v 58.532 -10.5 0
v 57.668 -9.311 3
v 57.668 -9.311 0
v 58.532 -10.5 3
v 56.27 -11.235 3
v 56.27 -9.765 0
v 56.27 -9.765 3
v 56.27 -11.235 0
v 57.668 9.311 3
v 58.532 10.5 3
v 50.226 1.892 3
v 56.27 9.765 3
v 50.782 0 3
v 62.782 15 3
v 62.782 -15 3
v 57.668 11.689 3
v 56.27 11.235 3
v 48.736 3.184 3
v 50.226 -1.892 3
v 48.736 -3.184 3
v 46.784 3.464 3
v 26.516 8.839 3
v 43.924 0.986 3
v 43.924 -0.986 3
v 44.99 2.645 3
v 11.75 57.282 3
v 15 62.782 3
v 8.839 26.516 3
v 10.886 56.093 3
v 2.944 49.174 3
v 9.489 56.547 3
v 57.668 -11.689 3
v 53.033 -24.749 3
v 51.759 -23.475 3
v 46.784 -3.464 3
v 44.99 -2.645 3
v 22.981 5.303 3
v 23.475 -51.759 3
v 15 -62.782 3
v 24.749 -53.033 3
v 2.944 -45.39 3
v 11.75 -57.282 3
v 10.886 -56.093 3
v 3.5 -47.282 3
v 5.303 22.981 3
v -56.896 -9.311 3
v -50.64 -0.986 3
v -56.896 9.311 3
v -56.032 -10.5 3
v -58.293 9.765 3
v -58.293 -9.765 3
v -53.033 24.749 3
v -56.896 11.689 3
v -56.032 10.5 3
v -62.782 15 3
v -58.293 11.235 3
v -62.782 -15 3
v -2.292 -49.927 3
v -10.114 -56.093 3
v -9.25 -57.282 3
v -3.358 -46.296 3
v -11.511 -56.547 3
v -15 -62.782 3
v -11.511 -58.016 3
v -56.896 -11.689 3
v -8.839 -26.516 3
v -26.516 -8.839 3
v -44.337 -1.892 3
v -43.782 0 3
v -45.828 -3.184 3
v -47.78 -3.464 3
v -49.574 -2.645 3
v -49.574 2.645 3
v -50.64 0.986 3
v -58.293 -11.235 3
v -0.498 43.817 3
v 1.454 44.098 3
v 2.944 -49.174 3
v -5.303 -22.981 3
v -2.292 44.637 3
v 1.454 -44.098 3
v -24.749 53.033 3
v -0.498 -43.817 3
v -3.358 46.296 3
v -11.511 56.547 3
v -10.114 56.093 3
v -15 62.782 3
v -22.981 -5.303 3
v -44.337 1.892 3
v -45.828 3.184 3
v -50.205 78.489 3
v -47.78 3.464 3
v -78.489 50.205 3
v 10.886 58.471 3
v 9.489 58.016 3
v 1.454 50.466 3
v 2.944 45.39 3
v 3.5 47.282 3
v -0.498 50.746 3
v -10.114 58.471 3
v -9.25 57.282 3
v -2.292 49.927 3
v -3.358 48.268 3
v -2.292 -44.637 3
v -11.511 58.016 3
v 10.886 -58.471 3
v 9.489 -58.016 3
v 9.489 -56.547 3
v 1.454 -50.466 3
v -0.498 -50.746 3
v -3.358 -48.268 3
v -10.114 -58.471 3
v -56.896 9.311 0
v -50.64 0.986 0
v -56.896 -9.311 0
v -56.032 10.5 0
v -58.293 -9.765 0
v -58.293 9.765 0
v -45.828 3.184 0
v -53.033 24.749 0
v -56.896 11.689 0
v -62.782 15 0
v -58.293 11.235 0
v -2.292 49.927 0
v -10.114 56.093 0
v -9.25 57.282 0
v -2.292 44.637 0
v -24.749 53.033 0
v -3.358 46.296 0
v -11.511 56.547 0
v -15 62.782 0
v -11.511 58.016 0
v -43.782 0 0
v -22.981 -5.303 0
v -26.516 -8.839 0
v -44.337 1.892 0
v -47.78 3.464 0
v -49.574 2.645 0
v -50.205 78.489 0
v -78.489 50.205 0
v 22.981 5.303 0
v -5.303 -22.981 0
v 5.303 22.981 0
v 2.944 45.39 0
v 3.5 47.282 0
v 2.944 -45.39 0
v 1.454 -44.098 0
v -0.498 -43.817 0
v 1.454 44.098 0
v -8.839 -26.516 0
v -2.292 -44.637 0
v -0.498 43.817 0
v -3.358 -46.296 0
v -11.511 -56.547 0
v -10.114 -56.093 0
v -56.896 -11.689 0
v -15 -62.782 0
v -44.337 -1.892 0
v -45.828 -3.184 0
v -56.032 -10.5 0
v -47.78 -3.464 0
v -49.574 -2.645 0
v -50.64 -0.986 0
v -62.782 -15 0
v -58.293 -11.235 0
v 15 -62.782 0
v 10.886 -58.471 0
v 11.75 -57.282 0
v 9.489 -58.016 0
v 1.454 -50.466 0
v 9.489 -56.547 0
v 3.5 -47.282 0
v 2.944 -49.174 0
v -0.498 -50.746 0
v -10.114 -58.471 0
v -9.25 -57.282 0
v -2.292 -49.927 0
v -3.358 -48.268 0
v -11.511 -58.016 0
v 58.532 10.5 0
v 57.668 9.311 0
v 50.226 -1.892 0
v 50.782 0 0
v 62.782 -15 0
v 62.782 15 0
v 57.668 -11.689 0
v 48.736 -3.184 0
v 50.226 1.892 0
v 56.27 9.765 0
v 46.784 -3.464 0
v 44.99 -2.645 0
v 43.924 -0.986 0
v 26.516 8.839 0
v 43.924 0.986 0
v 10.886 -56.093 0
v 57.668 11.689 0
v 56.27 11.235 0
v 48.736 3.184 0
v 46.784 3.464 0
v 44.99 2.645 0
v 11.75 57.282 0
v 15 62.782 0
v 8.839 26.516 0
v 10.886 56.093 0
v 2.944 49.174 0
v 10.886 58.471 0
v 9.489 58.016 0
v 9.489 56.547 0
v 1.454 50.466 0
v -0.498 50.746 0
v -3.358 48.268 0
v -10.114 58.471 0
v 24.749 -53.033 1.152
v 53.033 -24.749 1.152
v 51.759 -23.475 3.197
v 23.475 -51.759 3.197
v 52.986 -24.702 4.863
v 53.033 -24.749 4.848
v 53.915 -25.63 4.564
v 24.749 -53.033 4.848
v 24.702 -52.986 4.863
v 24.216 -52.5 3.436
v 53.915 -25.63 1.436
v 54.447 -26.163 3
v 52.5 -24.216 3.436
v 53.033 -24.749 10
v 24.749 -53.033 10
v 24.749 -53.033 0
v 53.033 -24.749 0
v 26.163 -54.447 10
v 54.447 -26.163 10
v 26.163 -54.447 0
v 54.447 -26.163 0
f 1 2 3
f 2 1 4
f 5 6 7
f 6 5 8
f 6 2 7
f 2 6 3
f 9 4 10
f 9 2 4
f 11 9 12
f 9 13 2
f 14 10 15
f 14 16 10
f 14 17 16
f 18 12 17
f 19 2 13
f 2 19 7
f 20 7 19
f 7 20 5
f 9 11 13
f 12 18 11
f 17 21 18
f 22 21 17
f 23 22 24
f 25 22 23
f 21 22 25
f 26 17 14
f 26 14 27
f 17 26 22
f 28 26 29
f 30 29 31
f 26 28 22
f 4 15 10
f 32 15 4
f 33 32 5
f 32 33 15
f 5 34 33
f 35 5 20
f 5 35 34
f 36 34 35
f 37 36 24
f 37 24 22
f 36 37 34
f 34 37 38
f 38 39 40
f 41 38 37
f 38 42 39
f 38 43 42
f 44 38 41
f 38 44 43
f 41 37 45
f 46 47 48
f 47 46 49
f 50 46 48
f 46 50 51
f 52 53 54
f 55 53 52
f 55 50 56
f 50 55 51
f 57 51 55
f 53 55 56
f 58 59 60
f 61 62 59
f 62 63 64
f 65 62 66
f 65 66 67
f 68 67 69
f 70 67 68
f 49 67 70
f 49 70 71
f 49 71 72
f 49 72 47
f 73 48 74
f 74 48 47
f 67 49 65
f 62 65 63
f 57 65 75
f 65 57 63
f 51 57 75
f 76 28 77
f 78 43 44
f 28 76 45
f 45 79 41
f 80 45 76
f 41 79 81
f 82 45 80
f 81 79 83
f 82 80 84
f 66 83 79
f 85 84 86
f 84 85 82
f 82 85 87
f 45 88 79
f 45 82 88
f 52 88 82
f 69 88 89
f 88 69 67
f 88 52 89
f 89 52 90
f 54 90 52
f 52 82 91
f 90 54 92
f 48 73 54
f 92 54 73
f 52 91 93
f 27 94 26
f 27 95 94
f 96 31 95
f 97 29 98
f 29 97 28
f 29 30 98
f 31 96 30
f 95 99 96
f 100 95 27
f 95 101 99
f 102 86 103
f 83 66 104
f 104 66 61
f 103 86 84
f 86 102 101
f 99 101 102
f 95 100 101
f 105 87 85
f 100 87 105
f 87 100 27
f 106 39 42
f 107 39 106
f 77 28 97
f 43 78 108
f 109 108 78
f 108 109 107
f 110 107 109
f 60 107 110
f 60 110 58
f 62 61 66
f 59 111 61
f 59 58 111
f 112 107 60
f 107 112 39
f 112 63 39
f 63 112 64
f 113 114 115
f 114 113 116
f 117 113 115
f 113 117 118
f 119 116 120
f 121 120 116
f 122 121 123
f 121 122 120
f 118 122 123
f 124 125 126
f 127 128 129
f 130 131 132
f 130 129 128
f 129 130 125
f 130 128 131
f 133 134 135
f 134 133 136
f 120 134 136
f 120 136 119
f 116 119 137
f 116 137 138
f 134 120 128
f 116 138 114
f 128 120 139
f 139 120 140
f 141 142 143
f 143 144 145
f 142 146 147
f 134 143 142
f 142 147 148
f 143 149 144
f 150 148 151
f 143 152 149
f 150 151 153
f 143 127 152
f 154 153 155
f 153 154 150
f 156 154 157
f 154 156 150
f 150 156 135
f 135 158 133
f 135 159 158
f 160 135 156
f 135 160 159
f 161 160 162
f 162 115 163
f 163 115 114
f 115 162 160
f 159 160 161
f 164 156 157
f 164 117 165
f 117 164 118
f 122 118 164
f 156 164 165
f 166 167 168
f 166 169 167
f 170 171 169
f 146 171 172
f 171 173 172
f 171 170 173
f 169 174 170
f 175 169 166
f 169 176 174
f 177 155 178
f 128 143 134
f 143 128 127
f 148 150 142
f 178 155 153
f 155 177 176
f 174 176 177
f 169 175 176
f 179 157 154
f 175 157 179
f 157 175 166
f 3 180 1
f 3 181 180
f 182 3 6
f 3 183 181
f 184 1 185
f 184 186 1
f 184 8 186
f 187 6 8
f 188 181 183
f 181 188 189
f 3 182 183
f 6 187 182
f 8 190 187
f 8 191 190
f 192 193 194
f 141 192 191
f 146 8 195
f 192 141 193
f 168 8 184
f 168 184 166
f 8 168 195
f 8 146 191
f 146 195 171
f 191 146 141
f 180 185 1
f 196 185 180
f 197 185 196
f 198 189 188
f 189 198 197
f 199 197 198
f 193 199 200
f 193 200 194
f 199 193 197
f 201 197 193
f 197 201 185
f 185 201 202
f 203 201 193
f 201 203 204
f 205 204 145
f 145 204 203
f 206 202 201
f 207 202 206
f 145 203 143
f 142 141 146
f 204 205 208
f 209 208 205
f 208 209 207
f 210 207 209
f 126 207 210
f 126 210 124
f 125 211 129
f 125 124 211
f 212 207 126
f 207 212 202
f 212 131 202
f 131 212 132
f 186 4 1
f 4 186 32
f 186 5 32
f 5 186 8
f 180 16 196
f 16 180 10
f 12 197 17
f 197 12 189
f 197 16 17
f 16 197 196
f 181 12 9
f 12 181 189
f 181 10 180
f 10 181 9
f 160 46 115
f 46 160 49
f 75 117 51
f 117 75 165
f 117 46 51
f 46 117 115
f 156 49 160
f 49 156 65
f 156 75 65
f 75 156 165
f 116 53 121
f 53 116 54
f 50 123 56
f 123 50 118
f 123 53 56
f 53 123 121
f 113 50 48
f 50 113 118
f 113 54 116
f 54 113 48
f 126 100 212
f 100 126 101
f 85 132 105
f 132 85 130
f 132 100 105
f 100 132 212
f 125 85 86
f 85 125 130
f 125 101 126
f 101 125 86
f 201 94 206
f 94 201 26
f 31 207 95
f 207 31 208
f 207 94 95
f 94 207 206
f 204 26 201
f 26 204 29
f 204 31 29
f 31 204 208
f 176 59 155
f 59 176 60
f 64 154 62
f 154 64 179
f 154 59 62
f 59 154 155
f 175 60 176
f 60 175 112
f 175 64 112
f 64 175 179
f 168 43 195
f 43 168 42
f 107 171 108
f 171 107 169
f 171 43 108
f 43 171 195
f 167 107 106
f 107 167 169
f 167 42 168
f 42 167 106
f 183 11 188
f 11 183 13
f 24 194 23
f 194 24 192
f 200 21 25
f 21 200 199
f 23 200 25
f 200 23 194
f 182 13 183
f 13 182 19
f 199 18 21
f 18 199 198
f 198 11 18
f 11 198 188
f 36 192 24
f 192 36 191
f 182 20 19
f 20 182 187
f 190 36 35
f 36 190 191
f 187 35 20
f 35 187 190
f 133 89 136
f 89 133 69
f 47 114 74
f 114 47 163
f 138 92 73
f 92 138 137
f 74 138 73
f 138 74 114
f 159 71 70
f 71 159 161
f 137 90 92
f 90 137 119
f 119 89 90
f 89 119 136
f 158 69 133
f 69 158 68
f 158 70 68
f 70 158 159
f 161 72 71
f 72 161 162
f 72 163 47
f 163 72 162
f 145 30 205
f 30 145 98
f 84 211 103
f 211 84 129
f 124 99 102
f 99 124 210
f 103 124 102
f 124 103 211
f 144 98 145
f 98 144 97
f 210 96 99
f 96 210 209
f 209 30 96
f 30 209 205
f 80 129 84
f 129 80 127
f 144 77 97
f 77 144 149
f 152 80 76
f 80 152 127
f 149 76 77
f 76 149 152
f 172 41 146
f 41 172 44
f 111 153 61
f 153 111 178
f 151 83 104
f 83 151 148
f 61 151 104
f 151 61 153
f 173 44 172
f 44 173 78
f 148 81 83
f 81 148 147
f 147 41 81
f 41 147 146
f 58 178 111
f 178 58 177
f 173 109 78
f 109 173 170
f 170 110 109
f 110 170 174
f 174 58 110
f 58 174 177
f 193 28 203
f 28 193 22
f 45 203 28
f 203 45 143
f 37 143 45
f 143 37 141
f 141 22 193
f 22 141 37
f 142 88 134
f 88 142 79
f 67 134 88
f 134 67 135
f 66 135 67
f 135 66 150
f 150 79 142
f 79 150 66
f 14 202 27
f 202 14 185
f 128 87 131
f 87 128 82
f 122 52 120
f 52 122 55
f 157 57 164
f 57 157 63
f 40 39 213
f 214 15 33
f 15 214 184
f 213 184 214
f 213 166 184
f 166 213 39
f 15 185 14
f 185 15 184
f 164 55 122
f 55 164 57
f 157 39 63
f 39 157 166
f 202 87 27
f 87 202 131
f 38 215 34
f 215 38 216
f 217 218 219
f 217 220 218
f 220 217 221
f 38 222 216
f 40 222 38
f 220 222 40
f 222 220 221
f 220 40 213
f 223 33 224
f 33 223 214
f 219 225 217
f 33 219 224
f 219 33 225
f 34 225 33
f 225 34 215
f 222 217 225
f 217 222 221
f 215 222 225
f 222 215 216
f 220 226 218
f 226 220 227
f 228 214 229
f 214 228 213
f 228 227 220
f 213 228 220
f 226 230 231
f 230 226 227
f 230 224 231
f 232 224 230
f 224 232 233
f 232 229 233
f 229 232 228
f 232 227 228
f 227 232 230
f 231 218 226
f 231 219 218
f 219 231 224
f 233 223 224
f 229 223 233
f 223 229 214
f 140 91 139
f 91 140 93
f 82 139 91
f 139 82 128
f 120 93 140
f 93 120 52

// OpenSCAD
// $fn = 64;

// plate parameters
plate_width = 110.0;
plate_depth = 3.0;

module M25ScrewHole(x, y, z, depth) {
    translate([x, y, z]) {
        cylinder(h = depth, d = 2.5, center = true);
    }
}

module M6Hole(x, y, z, depth) {
    translate([x, y, z]) {
        cylinder(h = depth, d = 7.0, center = true);
    }
}

module BottomPlateScrewHoles(plate_width, plate_depth, plate_diagonal) {
    base_line = 21.0;
    between_line = 20.0;

    E = 5.5;
    F = (plate_diagonal / 2.0) - E;
    G = F - between_line;

    // outer screw holes
    M25ScrewHole(F, -base_line / 2.0, plate_depth / 2.0, plate_depth);
    M25ScrewHole(F, base_line / 2.0, plate_depth / 2.0, plate_depth);

    M25ScrewHole(-F, -base_line / 2.0, plate_depth / 2.0, plate_depth);
    M25ScrewHole(-F, base_line / 2.0, plate_depth / 2.0, plate_depth);

    M25ScrewHole(-base_line / 2.0, F, plate_depth / 2.0, plate_depth);
    M25ScrewHole(base_line / 2.0, F, plate_depth / 2.0, plate_depth);

    M25ScrewHole(-base_line / 2.0, -F, plate_depth / 2.0, plate_depth);
    M25ScrewHole(base_line / 2.0, -F, plate_depth / 2.0, plate_depth);
}

module StackHoles(plate_width, plate_depth, plate_diagonal) {
    between_line = 20.0;

    E = 5.5;
    F = (plate_diagonal / 2.0) - E;
    H = F - (between_line / 2.0);

    M6Hole(H, 0.0, plate_depth / 2.0, plate_depth);
    M6Hole(-H, 0.0, plate_depth / 2.0, plate_depth);
    M6Hole(0.0, H, plate_depth / 2.0, plate_depth);
    M6Hole(0.0, -H, plate_depth / 2.0, plate_depth);
}

module BatteryStrapHoles(plate_width, plate_depth, plate_diagonal) {
    hole_width = 5;
    hole_length = 25;
    hole_between_width = 45;

    rotate(45) {
        translate([hole_between_width / 2.0, 0.0, plate_depth / 2.0]) {
            cube([hole_width, hole_length, plate_depth], center = true);
        }
    }

    rotate(45) {
        translate([-hole_between_width / 2.0, 0.0, plate_depth / 2.0]) {
            cube([hole_width, hole_length, plate_depth], center = true);
        }
    }
}

module BatteryTray(plate_width, plate_depth, battery_width, battery_length) {
    stay_length = battery_length - plate_width;

    translate([(plate_width / 2.0), 0.0, 0.0]) {
        cube([stay_length, battery_width, plate_depth]);
    }
}

module BatteryStop(plate_width, plate_depth, battery_width, battery_length) {
    stay_length = battery_length - plate_width;
	fillet_radius = 2.0;
	stop_thickness = 2;
	stop_height = 10;

    translate([(plate_width / 2.0), 0.0, 0.0]) {
		// fillet
        rotate([90, 0, 0]) {
			translate([0.0, plate_depth, -battery_width / 2.0]) {
				difference() {
					cylinder(r=fillet_radius, h=battery_width, center=true);
					translate([-fillet_radius, fillet_radius, 0.0]) {
						cylinder(r=fillet_radius, h=battery_width, center=true);
					}
				}
			}
		}

		// stop
		cube([stop_thickness, battery_width, stop_height]);
    }
}

module BottomPlate(plate_width, plate_depth) {
    battery_length = 146;
    battery_width = 40;

    difference() {
        // plate
        rotate(45) {
            translate([-plate_width / 2.0, -plate_width / 2.0, 0.0]) {
                cube([plate_width, plate_width, plate_depth]);
            }
        }

        // square cut plate corners
        A = plate_width;
        B = sqrt(2 * pow(A, 2));
        C = 30.0;
        D = 30.0;

        translate([B / 2.0, 0.0, plate_depth / 2.0]) { cube([C, D, plate_depth], true); }
        translate([-B / 2.0, 0.0, plate_depth / 2.0]) { cube([C, D, plate_depth], true); }
        translate([0.0, -B / 2.0, plate_depth / 2.0]) { cube([D, C, plate_depth], true); }
        translate([0.0, B/ 2.0, plate_depth / 2.0]) { cube([D, C, plate_depth], true); }

        // holes
        BottomPlateScrewHoles(plate_width, plate_depth, B - C);
        StackHoles(plate_width, plate_depth, B - C);
        BatteryStrapHoles(plate_width, plate_depth, B - C);
    }

    // battery tray
    rotate(135) {
        translate([0, -20, 0]) {
            BatteryTray(plate_width, plate_depth, battery_width, battery_length);
        }
    }

    // battery stop
    rotate(-45) {
        translate([0, -20, 0]) {
            BatteryStop(plate_width, plate_depth, battery_width, battery_length);
        }
    }

}

BottomPlate(plate_width, plate_depth);
